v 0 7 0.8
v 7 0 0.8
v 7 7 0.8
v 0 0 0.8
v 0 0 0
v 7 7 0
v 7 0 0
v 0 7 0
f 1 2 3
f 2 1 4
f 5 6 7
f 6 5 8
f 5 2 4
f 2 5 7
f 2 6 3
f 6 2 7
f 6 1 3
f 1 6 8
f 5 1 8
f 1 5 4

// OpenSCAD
/* Warning, this is a very basic generator with a lot of approximation 
input data : [WQFN, 7PX, 7x7x0.8mm, 44, , A, C04-00307A]
generated by com.zoubworld.electronics.cad.model3d.Basic
Date : Sun Feb 15 10:50:48 CET 2026
*/

//body
color("black")
translate([0,0,0])
cube([7.0,7.0,0.8], center=false);
